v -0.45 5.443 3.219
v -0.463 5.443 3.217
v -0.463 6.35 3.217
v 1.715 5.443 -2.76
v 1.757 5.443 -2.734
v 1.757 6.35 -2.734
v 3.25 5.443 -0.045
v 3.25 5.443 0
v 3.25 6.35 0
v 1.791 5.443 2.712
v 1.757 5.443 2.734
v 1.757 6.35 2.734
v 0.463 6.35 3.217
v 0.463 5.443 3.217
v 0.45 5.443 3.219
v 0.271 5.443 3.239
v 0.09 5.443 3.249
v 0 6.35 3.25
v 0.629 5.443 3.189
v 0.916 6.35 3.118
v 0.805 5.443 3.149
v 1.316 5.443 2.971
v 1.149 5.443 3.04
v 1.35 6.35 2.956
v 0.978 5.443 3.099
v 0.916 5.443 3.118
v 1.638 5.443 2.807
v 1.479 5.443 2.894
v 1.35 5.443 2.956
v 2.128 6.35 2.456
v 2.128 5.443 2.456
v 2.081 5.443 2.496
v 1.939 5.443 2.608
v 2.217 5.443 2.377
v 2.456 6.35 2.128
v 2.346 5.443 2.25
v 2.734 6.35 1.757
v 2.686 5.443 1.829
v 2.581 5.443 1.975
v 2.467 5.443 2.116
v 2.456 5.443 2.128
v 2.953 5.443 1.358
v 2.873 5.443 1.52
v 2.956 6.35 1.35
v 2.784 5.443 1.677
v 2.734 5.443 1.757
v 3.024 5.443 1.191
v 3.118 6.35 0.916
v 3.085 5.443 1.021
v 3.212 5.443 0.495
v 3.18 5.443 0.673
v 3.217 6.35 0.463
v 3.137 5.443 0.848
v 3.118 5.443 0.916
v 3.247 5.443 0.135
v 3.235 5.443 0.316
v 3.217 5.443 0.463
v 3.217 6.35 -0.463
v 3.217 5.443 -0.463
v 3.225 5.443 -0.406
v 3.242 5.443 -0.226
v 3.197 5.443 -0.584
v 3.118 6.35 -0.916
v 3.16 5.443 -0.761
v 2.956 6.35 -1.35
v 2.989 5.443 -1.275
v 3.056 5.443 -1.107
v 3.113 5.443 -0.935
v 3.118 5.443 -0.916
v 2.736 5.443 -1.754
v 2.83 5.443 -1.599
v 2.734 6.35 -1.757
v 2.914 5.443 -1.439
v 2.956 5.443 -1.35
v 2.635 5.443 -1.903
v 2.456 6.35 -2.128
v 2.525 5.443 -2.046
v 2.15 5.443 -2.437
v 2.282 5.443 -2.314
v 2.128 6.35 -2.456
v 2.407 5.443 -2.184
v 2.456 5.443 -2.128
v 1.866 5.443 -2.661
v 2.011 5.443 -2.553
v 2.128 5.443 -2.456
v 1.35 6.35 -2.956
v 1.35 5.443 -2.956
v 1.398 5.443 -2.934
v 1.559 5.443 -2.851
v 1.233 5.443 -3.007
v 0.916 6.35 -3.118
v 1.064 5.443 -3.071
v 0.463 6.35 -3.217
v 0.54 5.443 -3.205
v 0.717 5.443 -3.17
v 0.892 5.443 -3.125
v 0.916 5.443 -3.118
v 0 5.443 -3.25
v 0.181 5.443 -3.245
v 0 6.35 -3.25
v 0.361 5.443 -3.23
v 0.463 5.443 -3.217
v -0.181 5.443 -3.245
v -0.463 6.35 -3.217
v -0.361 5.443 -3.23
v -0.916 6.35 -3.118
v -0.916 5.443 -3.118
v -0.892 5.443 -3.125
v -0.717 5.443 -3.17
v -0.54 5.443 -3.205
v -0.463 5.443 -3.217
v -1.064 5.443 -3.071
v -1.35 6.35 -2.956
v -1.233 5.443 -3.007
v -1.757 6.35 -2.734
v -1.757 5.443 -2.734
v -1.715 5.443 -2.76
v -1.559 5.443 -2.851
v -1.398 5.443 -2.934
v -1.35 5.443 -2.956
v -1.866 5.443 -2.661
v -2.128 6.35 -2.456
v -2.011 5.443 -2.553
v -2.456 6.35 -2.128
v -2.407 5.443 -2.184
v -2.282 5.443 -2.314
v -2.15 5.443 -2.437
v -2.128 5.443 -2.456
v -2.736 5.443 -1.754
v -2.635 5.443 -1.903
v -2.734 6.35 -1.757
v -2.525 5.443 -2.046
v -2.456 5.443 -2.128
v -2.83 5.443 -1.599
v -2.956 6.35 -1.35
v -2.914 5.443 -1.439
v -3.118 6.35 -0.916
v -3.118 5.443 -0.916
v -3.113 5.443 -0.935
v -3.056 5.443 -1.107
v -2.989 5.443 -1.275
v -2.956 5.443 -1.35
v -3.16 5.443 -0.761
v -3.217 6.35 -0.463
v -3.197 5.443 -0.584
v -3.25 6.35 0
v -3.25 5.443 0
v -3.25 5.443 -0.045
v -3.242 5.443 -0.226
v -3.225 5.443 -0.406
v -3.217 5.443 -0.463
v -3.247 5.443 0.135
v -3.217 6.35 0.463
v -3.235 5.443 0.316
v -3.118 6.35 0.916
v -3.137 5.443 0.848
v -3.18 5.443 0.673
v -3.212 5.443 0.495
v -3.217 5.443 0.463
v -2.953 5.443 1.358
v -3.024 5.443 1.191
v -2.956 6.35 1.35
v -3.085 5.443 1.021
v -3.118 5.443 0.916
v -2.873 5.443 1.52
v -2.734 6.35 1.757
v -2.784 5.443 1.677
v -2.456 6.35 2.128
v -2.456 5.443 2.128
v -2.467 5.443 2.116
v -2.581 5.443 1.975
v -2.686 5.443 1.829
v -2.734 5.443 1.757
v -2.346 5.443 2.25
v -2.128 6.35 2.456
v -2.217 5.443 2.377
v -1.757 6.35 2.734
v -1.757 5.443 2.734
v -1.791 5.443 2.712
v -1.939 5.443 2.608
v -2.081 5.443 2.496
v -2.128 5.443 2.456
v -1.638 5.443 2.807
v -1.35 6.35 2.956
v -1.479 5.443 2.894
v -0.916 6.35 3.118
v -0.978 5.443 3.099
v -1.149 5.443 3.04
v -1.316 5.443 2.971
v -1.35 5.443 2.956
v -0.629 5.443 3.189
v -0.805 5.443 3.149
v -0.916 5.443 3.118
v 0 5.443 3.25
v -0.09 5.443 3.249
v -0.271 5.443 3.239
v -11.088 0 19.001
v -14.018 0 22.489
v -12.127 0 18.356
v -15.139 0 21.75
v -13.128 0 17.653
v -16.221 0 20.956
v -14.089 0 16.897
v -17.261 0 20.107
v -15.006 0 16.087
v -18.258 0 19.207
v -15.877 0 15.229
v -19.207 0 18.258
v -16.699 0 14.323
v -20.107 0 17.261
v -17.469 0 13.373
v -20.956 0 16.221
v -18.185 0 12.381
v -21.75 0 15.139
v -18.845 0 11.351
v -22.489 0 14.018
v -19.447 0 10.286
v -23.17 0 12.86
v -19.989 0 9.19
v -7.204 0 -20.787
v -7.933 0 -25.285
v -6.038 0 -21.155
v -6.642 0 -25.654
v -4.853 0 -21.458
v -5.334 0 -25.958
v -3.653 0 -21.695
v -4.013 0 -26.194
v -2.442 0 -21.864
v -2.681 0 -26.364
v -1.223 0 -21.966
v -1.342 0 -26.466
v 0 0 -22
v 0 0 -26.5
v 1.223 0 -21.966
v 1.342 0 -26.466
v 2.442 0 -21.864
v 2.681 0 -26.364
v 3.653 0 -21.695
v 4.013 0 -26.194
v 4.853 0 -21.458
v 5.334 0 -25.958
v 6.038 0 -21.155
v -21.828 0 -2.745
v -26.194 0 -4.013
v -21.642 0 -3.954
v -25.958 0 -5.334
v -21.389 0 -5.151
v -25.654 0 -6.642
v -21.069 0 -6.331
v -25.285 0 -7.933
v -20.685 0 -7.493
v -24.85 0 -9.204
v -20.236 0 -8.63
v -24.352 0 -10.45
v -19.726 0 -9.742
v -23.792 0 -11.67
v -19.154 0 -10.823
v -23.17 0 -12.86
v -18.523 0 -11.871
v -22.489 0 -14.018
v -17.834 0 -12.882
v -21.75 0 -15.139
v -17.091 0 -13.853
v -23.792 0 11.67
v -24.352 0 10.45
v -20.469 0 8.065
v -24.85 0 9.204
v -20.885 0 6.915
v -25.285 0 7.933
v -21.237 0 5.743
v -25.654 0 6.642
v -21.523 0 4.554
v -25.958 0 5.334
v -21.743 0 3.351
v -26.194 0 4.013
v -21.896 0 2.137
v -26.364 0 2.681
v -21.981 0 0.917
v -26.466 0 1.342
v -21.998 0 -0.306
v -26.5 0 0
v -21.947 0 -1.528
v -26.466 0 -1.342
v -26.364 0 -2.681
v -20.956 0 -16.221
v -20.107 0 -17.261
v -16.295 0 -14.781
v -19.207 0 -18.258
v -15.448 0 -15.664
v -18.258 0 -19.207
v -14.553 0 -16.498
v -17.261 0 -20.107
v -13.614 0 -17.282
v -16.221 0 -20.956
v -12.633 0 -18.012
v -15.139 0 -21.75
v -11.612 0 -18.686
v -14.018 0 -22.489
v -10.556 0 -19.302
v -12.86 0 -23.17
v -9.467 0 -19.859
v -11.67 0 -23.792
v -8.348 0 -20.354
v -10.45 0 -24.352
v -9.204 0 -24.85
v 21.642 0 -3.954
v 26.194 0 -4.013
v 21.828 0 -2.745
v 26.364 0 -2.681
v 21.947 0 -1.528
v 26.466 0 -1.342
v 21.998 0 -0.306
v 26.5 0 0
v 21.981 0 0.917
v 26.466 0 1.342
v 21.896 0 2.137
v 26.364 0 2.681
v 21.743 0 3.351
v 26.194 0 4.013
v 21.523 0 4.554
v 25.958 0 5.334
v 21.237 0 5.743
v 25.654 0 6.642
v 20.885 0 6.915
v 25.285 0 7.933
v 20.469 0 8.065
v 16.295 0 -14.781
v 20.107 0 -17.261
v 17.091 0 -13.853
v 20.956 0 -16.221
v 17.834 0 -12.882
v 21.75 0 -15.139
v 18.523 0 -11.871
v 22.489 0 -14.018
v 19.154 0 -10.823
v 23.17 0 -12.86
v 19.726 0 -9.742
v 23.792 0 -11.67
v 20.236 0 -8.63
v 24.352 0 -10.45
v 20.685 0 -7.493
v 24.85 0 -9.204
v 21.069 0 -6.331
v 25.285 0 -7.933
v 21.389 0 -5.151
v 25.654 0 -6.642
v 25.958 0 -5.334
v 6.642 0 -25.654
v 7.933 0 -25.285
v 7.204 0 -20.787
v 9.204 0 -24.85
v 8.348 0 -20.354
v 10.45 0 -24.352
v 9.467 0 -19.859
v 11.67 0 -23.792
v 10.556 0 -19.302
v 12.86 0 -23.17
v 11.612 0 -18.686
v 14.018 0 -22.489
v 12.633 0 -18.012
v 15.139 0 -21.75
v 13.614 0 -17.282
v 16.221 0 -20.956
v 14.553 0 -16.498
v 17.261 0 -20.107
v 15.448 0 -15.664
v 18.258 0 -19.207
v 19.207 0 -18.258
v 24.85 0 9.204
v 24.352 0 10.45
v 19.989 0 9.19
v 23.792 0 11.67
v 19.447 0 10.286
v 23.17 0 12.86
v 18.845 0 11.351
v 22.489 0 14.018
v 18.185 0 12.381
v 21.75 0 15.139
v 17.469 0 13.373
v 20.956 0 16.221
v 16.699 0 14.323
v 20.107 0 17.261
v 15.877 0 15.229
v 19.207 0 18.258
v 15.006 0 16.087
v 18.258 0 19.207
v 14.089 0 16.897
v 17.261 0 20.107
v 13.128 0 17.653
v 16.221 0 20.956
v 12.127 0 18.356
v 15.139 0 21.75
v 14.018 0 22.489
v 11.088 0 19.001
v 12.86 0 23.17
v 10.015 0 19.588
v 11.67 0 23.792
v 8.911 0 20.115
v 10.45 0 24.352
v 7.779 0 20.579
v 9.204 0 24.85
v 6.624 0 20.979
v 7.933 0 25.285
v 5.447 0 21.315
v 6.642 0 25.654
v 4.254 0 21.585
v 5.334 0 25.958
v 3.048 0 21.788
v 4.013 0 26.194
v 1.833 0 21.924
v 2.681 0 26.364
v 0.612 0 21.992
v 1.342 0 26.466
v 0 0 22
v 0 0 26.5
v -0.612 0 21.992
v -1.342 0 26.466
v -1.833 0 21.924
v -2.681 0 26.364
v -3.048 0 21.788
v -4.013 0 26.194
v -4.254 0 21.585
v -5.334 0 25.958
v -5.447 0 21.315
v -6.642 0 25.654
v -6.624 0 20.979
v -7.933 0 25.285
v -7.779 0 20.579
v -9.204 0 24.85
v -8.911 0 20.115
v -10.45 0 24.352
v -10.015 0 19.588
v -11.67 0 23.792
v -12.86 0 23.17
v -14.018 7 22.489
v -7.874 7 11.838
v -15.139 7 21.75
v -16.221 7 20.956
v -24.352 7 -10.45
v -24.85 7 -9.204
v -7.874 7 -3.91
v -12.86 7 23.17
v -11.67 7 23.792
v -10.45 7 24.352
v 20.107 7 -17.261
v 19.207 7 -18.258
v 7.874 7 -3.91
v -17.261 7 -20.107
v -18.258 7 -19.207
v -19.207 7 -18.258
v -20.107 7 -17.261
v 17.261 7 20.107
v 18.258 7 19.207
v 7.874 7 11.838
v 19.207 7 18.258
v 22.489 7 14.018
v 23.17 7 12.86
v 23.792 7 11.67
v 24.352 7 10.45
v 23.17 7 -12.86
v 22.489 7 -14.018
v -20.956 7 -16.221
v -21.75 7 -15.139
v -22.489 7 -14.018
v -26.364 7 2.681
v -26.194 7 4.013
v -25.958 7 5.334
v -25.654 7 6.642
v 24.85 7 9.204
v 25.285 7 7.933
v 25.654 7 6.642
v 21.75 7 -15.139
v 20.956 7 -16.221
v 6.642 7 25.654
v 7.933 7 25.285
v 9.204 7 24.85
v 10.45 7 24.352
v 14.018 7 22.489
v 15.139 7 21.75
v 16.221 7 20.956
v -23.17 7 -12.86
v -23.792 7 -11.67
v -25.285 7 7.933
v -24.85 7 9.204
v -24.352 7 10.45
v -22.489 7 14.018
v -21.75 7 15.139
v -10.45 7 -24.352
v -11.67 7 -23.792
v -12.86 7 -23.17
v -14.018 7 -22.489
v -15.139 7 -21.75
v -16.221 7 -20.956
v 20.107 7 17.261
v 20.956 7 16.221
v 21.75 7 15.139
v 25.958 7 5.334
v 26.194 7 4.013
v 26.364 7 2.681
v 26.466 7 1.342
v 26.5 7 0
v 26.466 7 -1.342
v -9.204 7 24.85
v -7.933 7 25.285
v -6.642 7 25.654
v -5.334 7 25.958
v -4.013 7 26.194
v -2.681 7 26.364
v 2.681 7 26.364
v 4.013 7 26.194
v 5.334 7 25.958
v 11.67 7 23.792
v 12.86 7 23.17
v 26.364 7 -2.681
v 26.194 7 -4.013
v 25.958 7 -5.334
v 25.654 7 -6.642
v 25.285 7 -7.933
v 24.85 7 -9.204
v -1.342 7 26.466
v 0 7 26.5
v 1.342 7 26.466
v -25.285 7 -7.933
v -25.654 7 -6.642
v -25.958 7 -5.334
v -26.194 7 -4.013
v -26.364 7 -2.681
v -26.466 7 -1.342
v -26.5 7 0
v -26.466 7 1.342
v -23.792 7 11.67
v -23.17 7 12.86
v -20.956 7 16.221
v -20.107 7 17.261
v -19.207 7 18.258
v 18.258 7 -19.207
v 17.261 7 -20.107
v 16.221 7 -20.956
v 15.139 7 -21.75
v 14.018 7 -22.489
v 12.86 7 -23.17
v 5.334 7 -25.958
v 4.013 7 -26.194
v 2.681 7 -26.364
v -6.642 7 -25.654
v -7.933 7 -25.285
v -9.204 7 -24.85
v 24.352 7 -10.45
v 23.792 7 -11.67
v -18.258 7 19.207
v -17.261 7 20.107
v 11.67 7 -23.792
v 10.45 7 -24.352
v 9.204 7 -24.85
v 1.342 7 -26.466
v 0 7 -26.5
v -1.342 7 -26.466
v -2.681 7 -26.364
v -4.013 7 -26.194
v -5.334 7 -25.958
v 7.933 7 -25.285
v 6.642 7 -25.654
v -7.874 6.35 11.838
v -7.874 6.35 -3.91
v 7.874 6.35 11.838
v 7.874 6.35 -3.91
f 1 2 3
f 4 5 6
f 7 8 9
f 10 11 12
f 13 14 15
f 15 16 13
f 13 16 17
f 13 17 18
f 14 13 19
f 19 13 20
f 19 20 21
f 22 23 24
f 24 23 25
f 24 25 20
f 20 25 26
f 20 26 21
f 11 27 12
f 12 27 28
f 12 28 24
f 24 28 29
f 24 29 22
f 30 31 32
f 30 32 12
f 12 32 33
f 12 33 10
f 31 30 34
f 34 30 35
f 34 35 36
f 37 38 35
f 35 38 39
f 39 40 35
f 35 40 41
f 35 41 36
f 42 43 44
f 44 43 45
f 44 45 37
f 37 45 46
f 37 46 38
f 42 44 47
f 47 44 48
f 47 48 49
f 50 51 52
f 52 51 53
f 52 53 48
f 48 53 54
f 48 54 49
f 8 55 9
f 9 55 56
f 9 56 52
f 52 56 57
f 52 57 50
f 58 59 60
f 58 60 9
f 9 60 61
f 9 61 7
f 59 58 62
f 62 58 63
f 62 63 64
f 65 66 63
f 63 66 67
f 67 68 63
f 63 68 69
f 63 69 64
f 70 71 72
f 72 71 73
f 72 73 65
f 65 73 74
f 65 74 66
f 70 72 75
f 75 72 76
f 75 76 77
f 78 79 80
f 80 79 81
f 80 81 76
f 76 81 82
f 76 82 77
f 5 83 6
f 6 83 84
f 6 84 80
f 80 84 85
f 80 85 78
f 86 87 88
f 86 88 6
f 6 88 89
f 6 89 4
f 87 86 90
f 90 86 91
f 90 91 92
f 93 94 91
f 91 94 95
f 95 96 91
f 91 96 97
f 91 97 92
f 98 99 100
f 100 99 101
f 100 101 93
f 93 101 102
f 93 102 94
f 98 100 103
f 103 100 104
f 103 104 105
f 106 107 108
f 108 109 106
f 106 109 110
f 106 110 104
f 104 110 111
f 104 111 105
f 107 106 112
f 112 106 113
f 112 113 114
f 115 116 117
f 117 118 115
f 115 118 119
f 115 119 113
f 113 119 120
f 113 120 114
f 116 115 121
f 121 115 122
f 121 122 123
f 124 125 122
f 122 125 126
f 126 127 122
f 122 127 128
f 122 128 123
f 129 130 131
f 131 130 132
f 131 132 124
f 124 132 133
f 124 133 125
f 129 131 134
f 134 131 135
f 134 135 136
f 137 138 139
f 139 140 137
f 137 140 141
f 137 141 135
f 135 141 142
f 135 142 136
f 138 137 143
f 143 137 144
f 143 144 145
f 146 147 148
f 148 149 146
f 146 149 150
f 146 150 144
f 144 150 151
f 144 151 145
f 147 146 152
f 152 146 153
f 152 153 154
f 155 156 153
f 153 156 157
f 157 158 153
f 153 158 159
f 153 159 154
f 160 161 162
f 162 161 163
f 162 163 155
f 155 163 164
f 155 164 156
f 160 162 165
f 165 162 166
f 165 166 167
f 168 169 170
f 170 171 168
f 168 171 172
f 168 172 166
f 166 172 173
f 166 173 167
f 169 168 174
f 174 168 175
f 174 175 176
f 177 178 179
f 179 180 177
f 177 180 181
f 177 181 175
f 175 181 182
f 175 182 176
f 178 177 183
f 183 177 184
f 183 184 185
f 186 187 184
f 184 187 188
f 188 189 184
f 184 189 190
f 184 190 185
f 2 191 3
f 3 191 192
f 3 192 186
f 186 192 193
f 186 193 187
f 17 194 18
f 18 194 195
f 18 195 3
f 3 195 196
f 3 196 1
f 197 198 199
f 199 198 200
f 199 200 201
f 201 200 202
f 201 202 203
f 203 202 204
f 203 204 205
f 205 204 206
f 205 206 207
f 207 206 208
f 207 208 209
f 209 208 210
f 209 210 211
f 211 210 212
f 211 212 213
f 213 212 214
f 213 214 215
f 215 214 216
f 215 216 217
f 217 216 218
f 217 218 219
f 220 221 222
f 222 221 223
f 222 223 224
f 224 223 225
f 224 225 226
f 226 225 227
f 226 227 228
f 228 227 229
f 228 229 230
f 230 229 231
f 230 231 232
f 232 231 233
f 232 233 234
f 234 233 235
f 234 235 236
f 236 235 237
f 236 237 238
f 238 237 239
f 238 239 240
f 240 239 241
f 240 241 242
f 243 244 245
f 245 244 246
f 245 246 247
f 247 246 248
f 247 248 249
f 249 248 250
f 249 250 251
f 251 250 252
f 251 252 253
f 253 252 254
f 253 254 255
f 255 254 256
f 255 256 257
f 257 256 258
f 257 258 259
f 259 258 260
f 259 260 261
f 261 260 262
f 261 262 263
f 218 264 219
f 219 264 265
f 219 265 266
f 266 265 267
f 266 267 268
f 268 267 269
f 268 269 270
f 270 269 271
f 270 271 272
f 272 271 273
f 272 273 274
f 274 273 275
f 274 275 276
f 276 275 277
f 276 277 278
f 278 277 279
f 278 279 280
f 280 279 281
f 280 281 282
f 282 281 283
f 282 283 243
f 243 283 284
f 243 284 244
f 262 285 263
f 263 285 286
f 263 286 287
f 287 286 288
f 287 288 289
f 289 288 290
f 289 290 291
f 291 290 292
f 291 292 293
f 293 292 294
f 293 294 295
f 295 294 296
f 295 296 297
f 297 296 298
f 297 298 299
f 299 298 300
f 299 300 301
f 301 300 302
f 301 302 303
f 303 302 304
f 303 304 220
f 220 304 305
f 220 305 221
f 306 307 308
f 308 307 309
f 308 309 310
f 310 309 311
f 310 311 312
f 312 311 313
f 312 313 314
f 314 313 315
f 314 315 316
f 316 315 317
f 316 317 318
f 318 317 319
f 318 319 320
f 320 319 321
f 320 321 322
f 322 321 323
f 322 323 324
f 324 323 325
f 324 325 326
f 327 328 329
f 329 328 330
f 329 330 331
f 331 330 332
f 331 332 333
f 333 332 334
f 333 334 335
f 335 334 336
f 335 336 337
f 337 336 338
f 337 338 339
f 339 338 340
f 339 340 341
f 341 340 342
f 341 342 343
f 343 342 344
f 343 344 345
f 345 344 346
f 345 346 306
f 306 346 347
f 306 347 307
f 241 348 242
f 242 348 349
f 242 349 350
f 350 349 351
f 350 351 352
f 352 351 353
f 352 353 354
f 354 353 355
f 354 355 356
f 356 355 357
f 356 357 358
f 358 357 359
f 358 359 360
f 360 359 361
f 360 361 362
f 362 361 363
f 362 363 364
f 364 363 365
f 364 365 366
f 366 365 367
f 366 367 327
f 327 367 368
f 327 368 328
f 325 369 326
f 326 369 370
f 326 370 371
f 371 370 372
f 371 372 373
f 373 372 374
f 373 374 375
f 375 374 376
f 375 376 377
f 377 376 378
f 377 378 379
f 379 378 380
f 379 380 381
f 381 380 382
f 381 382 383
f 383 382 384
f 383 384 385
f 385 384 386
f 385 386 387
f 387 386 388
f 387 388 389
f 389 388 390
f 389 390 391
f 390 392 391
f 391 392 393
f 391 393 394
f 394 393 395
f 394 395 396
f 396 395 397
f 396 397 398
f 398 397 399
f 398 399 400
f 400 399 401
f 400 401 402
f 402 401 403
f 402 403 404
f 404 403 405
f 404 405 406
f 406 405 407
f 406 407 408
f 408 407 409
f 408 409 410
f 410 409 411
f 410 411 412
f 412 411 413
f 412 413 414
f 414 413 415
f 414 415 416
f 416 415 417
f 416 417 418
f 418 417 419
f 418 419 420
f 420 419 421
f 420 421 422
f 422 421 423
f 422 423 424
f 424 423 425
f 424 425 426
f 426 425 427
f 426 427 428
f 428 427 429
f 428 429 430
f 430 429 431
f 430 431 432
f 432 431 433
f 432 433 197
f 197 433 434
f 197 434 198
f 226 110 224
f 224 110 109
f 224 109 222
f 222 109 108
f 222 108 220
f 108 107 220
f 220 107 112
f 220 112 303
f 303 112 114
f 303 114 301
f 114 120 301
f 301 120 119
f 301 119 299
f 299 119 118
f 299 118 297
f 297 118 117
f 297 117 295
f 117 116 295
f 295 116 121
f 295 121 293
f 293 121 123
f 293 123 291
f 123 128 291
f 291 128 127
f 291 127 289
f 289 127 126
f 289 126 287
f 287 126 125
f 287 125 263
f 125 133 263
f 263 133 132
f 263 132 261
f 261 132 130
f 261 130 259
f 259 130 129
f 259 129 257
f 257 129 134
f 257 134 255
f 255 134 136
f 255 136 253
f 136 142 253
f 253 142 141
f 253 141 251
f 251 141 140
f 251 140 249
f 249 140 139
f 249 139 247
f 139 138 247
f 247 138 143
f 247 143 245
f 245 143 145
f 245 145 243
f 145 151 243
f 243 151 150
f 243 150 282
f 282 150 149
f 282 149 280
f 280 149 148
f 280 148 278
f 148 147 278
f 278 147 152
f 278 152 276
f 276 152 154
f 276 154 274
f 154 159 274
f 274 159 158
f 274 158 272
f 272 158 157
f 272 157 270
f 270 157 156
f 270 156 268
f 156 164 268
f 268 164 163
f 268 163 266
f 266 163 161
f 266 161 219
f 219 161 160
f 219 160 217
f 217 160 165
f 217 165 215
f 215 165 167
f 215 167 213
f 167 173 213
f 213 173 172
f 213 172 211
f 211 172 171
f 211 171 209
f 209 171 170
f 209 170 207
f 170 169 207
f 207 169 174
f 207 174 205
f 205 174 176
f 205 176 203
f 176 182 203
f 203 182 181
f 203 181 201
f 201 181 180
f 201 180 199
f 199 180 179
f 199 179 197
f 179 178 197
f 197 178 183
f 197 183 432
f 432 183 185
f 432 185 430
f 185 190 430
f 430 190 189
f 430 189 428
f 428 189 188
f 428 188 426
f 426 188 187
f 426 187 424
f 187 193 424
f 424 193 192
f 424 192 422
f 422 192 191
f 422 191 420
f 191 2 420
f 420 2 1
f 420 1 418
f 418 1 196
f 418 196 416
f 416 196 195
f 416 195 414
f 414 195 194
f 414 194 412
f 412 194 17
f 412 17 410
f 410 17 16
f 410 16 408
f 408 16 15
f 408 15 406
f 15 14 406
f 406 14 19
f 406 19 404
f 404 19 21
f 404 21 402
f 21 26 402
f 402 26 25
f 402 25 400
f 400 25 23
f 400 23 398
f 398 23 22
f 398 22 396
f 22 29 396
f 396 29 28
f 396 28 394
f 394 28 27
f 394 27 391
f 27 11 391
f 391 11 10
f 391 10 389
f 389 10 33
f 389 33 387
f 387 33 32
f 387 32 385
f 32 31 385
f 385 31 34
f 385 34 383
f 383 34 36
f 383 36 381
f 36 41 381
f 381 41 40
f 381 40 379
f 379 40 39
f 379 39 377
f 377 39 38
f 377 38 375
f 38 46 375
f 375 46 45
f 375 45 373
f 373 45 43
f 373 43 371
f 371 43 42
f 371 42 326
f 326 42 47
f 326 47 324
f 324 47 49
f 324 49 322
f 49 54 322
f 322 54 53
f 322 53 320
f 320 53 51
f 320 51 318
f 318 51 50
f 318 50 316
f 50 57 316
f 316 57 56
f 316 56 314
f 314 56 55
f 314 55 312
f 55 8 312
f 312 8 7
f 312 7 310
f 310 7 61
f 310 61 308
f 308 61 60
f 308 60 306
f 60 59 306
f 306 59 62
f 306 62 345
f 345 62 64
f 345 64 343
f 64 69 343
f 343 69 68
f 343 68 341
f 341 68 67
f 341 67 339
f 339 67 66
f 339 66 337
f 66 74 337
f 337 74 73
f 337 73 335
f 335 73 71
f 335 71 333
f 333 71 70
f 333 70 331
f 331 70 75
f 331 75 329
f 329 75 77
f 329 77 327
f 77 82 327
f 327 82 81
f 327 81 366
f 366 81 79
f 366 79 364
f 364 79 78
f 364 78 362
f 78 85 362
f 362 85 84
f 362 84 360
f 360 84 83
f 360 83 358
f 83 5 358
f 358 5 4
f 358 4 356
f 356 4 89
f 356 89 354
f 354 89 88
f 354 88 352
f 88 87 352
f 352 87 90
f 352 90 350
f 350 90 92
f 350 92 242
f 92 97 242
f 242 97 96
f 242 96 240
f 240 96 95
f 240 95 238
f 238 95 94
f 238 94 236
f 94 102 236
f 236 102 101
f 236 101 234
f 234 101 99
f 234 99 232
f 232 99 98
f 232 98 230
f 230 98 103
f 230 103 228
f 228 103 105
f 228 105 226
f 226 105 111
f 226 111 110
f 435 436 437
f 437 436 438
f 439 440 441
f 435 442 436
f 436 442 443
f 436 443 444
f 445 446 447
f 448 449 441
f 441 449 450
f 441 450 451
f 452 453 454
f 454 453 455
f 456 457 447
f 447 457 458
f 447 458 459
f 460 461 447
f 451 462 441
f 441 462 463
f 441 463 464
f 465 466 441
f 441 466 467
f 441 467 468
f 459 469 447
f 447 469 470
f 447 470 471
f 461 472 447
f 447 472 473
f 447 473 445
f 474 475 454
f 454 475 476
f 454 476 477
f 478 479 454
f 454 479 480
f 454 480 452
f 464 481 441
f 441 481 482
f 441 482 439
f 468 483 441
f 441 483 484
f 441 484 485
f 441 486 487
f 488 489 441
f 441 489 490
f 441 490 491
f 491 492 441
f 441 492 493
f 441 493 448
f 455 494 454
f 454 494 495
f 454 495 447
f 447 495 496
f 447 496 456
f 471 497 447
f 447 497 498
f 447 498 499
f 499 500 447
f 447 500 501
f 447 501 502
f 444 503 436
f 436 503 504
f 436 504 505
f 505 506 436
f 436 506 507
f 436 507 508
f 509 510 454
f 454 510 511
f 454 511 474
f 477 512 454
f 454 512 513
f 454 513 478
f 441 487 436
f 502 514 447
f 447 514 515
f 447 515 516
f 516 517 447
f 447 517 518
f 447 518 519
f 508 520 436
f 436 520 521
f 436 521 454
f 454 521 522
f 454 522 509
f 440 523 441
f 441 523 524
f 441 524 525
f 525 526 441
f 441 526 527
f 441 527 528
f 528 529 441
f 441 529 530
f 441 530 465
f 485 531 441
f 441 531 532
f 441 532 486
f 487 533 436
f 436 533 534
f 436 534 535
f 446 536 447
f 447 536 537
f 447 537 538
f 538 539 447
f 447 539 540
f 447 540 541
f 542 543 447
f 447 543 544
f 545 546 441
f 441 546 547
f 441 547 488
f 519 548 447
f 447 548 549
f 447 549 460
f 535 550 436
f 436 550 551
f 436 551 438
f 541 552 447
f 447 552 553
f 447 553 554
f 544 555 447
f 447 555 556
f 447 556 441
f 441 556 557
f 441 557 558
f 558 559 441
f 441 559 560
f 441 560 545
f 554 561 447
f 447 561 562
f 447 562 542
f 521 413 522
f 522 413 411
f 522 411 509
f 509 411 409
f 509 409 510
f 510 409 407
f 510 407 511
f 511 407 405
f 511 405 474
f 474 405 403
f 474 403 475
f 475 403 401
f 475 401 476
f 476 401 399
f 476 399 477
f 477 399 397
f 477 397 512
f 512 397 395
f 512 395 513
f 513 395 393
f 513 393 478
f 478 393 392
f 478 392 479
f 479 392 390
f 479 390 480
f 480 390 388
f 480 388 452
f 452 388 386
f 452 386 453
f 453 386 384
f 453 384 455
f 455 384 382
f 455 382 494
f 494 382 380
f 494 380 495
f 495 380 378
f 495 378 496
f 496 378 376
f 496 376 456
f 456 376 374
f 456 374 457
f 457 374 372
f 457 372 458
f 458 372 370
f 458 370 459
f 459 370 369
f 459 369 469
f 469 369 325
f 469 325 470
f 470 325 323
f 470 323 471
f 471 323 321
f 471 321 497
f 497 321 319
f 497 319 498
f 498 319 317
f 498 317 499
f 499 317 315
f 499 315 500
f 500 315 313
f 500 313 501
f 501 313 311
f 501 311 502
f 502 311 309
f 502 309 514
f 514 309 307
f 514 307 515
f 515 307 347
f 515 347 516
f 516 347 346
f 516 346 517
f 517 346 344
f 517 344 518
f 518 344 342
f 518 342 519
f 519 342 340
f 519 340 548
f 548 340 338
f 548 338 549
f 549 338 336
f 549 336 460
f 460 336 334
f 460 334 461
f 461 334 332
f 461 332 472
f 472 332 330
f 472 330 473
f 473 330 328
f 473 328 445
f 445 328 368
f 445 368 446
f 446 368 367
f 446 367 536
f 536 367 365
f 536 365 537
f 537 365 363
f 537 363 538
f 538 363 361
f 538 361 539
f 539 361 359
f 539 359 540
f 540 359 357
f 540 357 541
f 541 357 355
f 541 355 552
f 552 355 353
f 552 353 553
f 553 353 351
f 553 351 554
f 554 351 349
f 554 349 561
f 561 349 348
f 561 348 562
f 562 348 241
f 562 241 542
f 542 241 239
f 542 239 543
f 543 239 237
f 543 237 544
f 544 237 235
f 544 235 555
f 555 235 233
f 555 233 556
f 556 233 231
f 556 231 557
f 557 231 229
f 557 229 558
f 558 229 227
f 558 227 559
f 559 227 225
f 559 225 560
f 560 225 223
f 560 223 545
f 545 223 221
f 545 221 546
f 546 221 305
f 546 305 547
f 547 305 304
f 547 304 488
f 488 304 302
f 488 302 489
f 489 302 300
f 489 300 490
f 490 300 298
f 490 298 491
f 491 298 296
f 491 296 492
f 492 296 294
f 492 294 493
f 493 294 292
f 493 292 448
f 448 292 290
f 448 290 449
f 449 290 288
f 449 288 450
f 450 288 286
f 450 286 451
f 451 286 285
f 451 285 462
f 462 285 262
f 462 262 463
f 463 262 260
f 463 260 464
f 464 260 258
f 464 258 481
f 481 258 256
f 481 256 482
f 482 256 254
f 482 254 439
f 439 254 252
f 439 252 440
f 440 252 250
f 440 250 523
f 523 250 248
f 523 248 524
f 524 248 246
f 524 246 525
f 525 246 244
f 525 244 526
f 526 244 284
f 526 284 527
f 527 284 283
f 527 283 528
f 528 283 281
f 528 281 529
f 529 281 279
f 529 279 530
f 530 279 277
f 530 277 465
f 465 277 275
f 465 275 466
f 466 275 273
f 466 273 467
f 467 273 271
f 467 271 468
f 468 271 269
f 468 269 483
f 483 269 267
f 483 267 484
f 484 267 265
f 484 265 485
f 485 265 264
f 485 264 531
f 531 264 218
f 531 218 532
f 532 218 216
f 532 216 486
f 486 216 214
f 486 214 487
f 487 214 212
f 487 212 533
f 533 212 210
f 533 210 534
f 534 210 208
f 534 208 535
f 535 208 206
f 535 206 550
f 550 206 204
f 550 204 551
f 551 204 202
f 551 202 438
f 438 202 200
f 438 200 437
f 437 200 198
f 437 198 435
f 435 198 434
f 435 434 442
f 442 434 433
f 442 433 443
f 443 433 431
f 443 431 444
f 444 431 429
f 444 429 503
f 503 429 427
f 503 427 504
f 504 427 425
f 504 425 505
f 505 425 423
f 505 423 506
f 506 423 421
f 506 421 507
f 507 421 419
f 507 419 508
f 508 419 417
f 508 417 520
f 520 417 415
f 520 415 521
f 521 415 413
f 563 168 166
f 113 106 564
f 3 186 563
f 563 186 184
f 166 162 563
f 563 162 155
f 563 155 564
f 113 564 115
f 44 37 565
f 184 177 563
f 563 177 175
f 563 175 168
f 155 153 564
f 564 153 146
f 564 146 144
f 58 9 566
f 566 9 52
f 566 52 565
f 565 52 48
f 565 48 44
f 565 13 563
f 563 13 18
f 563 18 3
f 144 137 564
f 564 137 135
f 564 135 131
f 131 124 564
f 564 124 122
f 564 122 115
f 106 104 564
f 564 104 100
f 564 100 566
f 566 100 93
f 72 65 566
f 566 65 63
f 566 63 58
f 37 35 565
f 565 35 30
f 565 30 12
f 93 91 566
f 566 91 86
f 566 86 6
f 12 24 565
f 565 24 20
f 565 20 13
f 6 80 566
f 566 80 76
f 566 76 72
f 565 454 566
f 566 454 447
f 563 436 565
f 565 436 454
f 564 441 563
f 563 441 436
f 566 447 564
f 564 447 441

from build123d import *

# Parameters (mm, degrees)
SKETCH5_W          = 15.748
SKETCH5_H          = 15.748
CUT_EXTRUDE1_DEPTH = 6.35


with BuildPart() as part:
    # Sketch3 → Revolve1 (revolve)
    with BuildSketch(Plane.XY):
        Polygon((22, 0), (3.25, 5.442857143), (3.25, 7), (26.5, 7), (26.5, 0), align=None)
    revolve(axis=Axis((0, 0, 0), (0, -1, 0)))

    # Sketch5 → Cut-Extrude1 (cut)
    with BuildSketch(Plane(origin=(0, 12.7, 0), x_dir=(1, 0, 0), z_dir=(0, 1, 0))):
        with Locations((0, -3.964)):
            Rectangle(SKETCH5_W, SKETCH5_H)
    extrude(amount=-CUT_EXTRUDE1_DEPTH, mode=Mode.SUBTRACT)


solid = part.part
